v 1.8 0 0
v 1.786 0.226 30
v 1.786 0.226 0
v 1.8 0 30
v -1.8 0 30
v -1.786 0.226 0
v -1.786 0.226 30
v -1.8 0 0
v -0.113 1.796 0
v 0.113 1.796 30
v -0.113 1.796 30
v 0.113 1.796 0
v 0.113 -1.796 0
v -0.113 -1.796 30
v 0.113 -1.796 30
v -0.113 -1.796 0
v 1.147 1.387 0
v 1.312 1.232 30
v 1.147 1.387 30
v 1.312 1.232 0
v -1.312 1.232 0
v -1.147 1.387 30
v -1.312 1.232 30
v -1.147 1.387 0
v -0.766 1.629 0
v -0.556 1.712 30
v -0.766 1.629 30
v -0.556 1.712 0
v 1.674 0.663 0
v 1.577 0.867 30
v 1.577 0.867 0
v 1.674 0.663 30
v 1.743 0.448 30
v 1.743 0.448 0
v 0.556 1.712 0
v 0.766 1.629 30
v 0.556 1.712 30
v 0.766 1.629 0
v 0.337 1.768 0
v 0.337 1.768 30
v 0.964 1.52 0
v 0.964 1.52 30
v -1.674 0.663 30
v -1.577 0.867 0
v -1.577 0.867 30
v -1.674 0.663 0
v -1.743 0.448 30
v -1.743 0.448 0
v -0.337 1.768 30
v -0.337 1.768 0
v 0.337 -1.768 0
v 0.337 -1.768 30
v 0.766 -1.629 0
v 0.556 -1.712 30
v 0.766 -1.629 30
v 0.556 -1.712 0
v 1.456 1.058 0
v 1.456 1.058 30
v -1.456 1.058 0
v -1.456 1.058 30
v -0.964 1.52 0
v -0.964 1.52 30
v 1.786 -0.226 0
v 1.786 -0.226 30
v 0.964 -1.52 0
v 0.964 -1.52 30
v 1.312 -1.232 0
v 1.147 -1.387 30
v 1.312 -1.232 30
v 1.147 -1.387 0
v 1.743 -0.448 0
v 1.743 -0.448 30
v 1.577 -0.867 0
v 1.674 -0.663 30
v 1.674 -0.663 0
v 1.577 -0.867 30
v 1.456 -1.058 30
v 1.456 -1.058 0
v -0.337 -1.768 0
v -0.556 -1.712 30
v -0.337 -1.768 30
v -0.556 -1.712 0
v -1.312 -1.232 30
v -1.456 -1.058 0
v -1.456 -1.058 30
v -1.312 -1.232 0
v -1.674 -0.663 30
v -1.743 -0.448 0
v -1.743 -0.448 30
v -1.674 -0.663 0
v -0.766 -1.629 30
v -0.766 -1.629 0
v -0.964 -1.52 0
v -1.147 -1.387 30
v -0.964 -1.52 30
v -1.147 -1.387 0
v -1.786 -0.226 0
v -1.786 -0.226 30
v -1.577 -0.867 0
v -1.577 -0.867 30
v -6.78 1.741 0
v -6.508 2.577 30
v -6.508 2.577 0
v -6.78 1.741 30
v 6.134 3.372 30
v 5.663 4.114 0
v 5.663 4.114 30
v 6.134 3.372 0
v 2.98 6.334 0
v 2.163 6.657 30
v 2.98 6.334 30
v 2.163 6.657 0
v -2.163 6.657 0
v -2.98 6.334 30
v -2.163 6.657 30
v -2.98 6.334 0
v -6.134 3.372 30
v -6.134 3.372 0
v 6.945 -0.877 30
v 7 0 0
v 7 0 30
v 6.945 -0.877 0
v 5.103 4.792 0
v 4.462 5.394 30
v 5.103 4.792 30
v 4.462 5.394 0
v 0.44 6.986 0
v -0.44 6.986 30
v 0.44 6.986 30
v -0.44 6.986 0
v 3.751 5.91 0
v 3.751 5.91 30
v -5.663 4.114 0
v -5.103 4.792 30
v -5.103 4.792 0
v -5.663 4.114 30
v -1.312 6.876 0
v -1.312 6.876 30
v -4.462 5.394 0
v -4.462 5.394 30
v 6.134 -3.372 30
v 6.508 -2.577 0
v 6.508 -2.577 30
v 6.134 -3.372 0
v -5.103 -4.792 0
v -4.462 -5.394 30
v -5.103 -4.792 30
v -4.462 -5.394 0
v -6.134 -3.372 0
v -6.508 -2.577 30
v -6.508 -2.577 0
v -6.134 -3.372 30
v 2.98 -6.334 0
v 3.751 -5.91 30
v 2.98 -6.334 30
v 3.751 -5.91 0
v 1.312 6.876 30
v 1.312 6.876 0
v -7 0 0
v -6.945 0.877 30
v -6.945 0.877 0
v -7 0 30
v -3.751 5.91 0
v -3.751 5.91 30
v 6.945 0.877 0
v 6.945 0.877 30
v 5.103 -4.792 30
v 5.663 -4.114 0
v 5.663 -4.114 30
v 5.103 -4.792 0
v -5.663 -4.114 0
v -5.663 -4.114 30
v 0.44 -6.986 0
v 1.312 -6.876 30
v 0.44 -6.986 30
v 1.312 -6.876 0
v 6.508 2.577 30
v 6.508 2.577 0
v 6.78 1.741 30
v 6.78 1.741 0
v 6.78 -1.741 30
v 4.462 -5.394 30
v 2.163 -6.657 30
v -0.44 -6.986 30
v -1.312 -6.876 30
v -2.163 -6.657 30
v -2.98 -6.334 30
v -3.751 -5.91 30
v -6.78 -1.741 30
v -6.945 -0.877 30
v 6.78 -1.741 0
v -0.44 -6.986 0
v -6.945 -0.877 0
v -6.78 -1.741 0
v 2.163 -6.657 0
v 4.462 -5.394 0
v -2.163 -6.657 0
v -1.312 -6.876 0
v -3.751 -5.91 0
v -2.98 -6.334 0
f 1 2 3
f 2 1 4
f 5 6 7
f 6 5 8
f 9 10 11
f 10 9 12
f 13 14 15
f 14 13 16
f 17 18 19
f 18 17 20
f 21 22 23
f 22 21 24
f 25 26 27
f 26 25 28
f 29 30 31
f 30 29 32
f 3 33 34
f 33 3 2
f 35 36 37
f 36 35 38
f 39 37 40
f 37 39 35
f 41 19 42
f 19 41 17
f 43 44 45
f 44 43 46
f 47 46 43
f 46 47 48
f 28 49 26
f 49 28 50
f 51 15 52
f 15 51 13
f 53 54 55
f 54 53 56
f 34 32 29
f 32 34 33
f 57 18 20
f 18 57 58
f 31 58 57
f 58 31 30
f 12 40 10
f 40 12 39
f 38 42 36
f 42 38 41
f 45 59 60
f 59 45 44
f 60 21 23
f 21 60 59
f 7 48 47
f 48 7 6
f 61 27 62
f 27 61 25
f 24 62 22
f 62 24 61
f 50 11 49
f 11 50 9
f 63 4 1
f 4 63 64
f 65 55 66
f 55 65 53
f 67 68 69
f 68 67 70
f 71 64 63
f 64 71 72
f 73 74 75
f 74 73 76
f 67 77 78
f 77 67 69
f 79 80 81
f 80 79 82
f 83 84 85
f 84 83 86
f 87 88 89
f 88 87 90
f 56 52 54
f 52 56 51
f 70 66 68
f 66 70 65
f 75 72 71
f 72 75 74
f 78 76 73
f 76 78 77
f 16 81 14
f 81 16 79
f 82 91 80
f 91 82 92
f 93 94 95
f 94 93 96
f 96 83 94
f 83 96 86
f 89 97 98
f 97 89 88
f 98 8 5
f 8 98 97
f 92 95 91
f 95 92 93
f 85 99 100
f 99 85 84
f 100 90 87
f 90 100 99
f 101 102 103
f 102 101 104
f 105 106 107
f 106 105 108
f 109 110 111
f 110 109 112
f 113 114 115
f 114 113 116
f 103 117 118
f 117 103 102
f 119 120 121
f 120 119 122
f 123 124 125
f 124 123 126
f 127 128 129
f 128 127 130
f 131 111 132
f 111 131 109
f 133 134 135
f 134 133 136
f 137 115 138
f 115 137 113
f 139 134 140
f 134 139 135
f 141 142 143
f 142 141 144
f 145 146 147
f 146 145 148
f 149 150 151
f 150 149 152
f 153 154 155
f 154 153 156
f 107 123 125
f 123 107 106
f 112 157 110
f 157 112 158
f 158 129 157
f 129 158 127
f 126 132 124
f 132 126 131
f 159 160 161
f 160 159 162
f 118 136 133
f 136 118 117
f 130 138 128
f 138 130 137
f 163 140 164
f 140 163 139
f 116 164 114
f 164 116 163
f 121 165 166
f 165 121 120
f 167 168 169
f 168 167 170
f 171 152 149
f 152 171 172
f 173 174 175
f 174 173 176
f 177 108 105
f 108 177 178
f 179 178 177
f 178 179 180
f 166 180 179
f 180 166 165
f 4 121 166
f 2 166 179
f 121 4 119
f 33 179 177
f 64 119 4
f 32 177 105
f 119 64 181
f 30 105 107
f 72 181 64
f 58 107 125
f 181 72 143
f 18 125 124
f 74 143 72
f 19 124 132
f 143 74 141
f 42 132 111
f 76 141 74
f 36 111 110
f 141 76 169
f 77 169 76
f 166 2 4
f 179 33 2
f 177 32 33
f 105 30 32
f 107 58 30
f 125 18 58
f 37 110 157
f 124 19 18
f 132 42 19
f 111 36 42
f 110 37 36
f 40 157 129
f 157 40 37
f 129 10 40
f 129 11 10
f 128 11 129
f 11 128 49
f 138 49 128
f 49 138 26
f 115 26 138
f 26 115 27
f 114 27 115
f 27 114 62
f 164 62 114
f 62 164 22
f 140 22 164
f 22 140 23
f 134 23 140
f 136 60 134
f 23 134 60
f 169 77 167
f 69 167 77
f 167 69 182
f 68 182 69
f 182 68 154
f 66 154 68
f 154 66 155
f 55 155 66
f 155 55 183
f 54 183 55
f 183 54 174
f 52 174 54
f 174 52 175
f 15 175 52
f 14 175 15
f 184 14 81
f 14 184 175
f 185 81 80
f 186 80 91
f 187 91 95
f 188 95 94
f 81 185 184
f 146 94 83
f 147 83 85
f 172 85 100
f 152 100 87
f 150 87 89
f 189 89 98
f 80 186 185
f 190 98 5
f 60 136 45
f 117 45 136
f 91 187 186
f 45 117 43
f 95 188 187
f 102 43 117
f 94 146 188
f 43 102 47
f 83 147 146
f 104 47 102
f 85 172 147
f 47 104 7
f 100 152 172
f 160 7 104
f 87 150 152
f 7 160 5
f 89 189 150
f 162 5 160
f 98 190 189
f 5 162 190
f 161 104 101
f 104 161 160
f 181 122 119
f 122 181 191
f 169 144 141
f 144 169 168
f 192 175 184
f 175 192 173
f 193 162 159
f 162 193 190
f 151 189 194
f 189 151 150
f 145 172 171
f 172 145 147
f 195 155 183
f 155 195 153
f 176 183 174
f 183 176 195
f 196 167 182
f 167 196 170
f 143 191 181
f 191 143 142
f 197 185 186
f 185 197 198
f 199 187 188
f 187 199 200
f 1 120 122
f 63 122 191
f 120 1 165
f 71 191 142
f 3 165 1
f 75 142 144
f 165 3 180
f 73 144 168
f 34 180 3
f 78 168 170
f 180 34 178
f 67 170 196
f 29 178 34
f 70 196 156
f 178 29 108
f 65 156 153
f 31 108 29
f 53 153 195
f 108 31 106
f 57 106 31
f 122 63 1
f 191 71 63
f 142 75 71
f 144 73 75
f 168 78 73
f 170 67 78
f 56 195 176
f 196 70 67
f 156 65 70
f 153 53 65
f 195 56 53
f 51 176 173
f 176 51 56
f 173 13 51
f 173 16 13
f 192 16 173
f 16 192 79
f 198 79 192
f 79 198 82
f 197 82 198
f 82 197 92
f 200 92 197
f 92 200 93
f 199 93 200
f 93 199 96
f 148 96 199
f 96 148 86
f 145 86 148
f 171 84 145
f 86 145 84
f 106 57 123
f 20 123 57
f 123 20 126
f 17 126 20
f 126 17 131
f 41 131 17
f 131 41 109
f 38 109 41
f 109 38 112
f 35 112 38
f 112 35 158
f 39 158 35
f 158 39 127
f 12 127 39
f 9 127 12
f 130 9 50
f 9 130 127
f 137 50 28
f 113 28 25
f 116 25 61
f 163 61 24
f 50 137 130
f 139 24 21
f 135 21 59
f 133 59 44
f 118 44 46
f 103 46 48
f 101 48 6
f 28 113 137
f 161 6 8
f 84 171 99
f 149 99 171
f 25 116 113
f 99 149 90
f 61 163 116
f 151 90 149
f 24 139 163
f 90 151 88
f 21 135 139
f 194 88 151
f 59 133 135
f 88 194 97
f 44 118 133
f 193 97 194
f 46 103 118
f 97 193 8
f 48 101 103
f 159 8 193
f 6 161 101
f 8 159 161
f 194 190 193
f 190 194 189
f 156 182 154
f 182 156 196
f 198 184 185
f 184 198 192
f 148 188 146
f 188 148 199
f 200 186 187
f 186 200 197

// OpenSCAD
$fn = 50;


difference() {
	union() {
		cylinder(h = 30, r = 7.0000000000);
	}
	union() {
		translate(v = [0, 0, -100]) {
			cylinder(h = 200, r = 1.8000000000);
		}
		translate(v = [0, 0, -100]) {
			cylinder(h = 200, r = 1.8000000000);
		}
	}
}
